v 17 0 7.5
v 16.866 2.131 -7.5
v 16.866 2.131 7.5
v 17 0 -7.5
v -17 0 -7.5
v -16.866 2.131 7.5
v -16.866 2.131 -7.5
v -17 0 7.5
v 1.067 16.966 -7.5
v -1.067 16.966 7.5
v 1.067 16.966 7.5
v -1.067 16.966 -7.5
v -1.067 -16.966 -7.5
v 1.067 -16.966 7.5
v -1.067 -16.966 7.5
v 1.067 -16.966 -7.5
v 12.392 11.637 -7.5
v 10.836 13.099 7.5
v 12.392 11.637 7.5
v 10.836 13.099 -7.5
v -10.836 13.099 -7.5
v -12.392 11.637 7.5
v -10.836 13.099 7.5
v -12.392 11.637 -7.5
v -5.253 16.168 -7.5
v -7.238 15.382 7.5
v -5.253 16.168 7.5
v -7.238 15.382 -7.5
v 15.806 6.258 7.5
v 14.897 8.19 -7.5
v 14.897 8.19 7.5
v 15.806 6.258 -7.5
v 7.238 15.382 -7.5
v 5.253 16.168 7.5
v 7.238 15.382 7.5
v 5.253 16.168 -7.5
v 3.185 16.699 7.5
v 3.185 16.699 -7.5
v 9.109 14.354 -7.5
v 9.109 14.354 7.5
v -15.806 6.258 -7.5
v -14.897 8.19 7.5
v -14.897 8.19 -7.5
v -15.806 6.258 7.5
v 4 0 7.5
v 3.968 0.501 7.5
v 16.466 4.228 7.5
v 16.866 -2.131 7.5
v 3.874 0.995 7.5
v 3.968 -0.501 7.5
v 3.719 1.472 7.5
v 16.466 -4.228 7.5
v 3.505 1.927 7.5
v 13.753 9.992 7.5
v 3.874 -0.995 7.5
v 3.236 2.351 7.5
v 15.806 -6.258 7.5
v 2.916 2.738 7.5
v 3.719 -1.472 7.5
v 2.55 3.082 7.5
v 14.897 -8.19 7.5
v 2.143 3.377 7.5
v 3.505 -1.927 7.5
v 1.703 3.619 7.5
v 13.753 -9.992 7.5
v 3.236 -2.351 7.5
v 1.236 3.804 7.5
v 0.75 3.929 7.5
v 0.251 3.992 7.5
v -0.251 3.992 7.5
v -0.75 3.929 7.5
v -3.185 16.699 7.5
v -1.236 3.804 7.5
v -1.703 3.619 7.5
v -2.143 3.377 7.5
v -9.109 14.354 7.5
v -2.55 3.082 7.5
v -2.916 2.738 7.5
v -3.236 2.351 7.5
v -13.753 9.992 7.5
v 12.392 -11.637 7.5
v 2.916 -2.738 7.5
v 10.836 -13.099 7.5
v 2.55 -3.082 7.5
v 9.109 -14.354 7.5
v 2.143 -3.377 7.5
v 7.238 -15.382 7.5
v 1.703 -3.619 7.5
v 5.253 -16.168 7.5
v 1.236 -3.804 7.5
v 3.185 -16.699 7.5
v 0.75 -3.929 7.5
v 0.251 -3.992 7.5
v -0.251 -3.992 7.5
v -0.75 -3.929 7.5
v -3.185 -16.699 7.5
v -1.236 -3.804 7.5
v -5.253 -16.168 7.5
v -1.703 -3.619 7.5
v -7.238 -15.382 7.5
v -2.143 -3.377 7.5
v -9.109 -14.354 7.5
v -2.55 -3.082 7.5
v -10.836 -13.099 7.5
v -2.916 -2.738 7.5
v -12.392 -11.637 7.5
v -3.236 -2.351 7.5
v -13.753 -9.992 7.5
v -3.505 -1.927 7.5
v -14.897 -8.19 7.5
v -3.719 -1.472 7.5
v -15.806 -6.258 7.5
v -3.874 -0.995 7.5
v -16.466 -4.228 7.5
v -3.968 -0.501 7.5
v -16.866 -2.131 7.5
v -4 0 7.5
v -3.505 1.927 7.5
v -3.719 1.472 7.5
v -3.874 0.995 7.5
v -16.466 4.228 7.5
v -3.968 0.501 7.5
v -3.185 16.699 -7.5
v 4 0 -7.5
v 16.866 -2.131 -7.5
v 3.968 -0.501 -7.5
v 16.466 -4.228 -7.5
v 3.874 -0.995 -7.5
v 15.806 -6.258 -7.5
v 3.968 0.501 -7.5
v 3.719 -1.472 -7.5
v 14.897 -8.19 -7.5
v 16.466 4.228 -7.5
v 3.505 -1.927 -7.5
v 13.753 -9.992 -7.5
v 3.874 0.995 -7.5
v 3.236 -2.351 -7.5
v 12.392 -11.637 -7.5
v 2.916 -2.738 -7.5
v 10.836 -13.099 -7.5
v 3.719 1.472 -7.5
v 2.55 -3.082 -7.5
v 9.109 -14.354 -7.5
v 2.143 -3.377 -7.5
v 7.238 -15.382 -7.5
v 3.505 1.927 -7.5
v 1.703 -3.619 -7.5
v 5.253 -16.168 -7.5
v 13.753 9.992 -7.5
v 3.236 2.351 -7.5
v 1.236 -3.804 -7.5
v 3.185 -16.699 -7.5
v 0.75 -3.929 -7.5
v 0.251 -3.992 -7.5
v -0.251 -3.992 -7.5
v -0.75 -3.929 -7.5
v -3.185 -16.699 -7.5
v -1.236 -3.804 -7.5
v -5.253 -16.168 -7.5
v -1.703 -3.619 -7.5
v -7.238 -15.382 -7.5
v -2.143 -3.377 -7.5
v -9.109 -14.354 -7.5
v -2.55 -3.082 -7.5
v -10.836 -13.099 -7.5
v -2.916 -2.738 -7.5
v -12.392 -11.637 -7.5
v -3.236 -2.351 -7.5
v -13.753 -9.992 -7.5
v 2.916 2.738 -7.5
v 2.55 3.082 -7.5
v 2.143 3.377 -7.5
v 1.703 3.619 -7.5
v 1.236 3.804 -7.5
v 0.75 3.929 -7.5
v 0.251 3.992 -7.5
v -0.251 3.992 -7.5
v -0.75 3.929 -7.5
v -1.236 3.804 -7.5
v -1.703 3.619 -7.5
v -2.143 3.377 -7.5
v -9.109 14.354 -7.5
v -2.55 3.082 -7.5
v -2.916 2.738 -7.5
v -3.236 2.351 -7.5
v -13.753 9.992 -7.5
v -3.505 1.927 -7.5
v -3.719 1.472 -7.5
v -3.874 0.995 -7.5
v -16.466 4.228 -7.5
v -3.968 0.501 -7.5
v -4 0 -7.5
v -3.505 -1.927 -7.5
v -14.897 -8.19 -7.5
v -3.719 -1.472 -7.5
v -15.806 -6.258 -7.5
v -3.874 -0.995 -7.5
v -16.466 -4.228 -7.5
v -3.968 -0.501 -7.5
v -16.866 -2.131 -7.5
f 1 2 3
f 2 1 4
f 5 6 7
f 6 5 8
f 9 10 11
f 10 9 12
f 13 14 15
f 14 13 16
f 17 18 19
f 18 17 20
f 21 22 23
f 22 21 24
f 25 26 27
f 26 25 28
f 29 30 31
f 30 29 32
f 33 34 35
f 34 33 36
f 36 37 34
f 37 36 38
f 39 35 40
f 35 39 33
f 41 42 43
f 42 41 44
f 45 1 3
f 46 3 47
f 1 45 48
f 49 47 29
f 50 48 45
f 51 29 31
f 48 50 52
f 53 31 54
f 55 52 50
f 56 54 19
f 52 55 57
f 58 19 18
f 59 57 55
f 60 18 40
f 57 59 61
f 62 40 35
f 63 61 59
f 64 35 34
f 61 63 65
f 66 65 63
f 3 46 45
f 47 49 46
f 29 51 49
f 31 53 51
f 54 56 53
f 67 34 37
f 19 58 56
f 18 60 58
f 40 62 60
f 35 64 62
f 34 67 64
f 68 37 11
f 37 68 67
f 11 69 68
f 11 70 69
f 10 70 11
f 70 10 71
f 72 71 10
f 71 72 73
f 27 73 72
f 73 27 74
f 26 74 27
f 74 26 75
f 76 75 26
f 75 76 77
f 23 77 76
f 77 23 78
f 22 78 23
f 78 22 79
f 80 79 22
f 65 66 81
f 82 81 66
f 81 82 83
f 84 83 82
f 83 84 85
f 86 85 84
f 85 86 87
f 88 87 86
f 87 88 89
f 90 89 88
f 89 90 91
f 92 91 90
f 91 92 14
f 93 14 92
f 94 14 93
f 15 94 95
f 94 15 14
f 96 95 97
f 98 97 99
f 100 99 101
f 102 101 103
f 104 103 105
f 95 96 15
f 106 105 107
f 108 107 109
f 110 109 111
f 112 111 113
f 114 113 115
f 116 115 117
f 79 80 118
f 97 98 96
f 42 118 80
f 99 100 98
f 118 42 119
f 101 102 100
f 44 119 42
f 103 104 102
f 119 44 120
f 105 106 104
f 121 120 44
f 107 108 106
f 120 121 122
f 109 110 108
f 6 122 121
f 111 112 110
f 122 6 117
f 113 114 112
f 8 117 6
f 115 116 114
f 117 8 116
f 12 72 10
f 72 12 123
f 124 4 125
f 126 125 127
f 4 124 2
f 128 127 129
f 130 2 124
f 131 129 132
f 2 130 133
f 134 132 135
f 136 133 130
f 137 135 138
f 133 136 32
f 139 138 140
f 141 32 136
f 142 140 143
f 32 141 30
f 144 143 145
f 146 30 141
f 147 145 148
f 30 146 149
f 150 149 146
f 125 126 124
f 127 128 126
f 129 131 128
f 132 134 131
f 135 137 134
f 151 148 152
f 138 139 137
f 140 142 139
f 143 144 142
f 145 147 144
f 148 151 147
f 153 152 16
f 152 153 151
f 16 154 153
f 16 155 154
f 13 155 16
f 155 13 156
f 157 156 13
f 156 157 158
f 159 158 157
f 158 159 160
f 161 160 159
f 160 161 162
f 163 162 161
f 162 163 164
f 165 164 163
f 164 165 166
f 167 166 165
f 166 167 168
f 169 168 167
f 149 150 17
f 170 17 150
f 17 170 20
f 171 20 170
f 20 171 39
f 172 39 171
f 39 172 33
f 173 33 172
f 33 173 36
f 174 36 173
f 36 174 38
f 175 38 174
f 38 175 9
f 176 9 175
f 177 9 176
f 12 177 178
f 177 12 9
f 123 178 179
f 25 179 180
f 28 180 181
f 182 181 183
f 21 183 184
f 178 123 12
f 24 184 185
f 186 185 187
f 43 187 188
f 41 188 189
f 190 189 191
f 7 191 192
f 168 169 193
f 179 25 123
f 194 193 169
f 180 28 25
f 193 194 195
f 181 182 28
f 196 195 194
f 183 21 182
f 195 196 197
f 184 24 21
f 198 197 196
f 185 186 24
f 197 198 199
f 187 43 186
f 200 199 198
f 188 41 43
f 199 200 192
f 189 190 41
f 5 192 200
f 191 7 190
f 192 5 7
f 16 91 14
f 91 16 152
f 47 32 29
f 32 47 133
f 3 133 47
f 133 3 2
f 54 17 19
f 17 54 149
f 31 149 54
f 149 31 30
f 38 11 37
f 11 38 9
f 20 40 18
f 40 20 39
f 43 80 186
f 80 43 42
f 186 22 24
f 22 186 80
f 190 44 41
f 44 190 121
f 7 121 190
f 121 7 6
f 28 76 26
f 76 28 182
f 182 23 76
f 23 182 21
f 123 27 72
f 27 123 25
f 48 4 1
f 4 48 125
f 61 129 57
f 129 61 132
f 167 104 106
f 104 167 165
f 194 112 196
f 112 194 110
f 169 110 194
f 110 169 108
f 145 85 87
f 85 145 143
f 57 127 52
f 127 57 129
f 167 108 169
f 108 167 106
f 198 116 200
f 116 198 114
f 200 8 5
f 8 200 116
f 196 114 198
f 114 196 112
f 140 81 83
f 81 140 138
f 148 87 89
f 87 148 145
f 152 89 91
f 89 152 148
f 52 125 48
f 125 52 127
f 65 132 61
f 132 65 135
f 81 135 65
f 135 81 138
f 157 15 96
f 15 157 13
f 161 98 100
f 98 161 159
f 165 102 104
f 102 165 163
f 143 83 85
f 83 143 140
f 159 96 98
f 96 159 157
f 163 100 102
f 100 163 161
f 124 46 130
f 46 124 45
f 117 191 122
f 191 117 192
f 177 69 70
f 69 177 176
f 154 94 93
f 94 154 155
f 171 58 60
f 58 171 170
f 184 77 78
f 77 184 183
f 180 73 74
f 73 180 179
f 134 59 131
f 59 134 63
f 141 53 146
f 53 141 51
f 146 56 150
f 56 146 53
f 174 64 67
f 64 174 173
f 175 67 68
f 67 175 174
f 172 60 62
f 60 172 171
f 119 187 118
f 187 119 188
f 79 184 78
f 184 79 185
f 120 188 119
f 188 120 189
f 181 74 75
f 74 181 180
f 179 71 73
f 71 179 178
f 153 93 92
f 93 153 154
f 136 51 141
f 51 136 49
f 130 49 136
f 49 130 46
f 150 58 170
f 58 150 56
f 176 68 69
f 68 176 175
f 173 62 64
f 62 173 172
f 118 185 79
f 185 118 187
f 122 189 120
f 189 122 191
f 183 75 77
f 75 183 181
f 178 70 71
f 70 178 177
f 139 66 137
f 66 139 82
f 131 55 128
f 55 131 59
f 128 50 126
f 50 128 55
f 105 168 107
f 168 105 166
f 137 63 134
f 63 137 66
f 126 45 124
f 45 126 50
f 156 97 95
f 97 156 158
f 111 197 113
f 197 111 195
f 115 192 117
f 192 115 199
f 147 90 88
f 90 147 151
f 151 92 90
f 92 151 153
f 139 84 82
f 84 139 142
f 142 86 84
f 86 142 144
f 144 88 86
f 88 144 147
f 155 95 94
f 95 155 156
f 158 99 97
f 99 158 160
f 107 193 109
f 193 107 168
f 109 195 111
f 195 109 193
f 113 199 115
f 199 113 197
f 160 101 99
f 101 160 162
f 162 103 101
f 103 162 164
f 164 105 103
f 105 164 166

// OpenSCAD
$fn = 50;


difference() {
	union() {
		translate(v = [0, 0, -7.5000000000]) {
			cylinder(h = 15, r = 17.0000000000);
		}
	}
	union() {
		translate(v = [0, 0, -100.0000000000]) {
			cylinder(h = 200, r = 4);
		}
	}
}
